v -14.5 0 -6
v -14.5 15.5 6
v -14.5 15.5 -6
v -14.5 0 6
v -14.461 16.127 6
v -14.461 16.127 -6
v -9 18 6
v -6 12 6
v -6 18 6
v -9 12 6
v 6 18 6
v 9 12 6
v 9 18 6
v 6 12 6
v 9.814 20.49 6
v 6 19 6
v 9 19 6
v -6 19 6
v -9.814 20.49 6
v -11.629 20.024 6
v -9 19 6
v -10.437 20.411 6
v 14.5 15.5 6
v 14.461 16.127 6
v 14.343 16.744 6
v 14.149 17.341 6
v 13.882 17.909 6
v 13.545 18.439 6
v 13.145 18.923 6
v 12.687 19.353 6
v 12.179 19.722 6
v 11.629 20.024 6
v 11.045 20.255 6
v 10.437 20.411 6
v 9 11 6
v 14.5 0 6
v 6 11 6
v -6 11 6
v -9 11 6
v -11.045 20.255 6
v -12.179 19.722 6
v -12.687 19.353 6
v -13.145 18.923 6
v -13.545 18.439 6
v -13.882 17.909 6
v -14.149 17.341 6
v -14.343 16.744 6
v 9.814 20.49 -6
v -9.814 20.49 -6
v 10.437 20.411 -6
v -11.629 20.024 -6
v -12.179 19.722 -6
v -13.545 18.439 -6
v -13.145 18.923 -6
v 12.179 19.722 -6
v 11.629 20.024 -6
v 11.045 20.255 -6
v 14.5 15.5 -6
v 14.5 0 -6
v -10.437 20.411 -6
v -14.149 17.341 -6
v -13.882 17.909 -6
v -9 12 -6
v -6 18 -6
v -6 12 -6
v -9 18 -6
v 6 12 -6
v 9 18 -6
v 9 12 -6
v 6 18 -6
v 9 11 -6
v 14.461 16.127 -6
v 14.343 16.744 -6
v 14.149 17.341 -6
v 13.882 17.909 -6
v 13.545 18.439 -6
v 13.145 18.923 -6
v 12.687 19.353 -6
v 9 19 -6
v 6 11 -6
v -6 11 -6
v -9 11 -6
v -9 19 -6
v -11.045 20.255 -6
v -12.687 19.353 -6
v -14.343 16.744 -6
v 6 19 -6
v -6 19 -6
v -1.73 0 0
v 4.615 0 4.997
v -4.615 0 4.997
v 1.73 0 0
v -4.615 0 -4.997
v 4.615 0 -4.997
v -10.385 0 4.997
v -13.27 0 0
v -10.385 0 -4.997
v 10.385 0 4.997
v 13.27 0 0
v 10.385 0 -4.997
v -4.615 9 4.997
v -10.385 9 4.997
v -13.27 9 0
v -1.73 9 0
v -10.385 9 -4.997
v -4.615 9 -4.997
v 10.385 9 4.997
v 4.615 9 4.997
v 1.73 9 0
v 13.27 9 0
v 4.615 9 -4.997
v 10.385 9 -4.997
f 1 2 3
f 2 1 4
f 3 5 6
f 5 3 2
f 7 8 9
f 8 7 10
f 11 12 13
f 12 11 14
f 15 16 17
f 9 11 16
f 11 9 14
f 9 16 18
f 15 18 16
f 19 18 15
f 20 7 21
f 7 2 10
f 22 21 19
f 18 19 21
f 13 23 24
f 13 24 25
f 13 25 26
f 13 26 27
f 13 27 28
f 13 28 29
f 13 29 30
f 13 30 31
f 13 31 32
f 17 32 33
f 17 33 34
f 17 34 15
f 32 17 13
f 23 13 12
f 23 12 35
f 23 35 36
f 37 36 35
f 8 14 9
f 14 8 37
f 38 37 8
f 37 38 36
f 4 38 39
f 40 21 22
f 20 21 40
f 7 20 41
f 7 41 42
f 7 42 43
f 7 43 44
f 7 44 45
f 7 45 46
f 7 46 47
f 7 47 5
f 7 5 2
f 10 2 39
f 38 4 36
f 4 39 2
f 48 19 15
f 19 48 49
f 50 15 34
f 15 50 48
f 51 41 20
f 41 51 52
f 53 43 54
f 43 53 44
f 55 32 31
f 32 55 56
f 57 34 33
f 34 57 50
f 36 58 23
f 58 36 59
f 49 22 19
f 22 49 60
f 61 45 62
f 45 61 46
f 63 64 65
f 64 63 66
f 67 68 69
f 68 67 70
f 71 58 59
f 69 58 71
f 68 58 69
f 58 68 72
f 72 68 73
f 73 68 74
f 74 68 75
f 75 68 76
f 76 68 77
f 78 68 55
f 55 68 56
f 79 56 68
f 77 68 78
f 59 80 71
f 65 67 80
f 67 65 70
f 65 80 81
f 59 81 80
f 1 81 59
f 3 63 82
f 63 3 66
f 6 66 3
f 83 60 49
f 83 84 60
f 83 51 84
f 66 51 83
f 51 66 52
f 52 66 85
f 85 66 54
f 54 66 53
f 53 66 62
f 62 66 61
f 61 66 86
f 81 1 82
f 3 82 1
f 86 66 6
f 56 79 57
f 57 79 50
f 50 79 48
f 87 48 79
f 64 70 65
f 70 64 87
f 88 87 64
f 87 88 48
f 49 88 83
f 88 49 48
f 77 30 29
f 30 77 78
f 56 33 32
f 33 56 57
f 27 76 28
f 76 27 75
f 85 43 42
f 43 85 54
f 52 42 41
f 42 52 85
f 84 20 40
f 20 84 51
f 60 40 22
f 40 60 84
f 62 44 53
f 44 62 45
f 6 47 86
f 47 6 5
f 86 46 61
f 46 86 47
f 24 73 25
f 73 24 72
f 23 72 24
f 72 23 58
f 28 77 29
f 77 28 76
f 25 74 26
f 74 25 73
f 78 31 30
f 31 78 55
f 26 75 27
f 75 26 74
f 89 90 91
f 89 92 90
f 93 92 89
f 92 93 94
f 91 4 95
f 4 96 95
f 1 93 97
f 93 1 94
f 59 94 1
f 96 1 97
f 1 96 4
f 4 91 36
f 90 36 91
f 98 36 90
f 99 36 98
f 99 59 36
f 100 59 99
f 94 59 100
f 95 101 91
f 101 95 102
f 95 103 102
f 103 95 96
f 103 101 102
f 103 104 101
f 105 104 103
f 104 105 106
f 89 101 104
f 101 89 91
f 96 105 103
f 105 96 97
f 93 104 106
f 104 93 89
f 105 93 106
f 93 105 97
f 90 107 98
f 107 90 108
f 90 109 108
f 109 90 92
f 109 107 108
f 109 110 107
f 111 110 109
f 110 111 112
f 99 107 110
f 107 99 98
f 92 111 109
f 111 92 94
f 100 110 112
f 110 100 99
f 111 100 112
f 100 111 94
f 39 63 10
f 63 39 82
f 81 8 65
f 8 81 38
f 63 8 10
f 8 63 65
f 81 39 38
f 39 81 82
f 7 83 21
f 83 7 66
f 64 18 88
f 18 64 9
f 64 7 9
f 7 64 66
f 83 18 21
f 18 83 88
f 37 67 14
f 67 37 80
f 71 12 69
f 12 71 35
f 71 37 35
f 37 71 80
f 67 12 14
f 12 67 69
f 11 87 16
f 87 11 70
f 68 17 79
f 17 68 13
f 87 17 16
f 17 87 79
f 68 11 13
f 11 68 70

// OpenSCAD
$fn = 50;


difference() {
	union() {
		translate(v = [0, 13.5000000000, -6.0000000000]) {
			hull() {
				translate(v = [-9.5000000000, 2.0000000000, 0]) {
					cylinder(h = 12, r = 5);
				}
				translate(v = [9.5000000000, 2.0000000000, 0]) {
					cylinder(h = 12, r = 5);
				}
				translate(v = [-9.5000000000, -2.0000000000, 0]) {
					cylinder(h = 12, r = 5);
				}
				translate(v = [9.5000000000, -2.0000000000, 0]) {
					cylinder(h = 12, r = 5);
				}
			}
		}
		translate(v = [0, 13.5000000000, -6.0000000000]) {
			hull() {
				translate(v = [-9.5000000000, 2.0000000000, 0]) {
					cylinder(h = 12, r = 5);
				}
				translate(v = [9.5000000000, 2.0000000000, 0]) {
					cylinder(h = 12, r = 5);
				}
				translate(v = [-9.5000000000, -2.0000000000, 0]) {
					cylinder(h = 12, r = 5);
				}
				translate(v = [9.5000000000, -2.0000000000, 0]) {
					cylinder(h = 12, r = 5);
				}
			}
		}
		translate(v = [-14.5000000000, 0, -6.0000000000]) {
			cube(size = [29, 13.5000000000, 12]);
		}
	}
	union() {
		translate(v = [-7.5000000000, 9, 0]) {
			rotate(a = [0, 0, 0]) {
				difference() {
					union() {
						rotate(a = [90, 0, 0]) {
							linear_extrude(height = 13.5000000000) {
								polygon(points = [[5.7700000000, 0.0000000000], [2.8850000000, 4.9969665798], [-2.8850000000, 4.9969665798], [-5.7700000000, 0.0000000000], [-2.8850000000, -4.9969665798], [2.8850000000, -4.9969665798]]);
							}
						}
					}
					union();
				}
			}
		}
		translate(v = [7.5000000000, 9, 0]) {
			rotate(a = [0, 0, 0]) {
				difference() {
					union() {
						rotate(a = [90, 0, 0]) {
							linear_extrude(height = 13.5000000000) {
								polygon(points = [[5.7700000000, 0.0000000000], [2.8850000000, 4.9969665798], [-2.8850000000, 4.9969665798], [-5.7700000000, 0.0000000000], [-2.8850000000, -4.9969665798], [2.8850000000, -4.9969665798]]);
							}
						}
					}
					union();
				}
			}
		}
		translate(v = [-9.0000000000, 11.0000000000, -50]) {
			cube(size = [3, 1, 100]);
		}
		translate(v = [-9.0000000000, 18.0000000000, -50]) {
			cube(size = [3, 1, 100]);
		}
		translate(v = [-7.5000000000, 8, 0]) {
			rotate(a = [90, 0, 0]) {
				cylinder(h = 8, r = 3.0000000000);
			}
		}
		translate(v = [6.0000000000, 11.0000000000, -50]) {
			cube(size = [3, 1, 100]);
		}
		translate(v = [6.0000000000, 18.0000000000, -50]) {
			cube(size = [3, 1, 100]);
		}
		translate(v = [7.5000000000, 8, 0]) {
			rotate(a = [90, 0, 0]) {
				cylinder(h = 8, r = 3.0000000000);
			}
		}
	}
}
